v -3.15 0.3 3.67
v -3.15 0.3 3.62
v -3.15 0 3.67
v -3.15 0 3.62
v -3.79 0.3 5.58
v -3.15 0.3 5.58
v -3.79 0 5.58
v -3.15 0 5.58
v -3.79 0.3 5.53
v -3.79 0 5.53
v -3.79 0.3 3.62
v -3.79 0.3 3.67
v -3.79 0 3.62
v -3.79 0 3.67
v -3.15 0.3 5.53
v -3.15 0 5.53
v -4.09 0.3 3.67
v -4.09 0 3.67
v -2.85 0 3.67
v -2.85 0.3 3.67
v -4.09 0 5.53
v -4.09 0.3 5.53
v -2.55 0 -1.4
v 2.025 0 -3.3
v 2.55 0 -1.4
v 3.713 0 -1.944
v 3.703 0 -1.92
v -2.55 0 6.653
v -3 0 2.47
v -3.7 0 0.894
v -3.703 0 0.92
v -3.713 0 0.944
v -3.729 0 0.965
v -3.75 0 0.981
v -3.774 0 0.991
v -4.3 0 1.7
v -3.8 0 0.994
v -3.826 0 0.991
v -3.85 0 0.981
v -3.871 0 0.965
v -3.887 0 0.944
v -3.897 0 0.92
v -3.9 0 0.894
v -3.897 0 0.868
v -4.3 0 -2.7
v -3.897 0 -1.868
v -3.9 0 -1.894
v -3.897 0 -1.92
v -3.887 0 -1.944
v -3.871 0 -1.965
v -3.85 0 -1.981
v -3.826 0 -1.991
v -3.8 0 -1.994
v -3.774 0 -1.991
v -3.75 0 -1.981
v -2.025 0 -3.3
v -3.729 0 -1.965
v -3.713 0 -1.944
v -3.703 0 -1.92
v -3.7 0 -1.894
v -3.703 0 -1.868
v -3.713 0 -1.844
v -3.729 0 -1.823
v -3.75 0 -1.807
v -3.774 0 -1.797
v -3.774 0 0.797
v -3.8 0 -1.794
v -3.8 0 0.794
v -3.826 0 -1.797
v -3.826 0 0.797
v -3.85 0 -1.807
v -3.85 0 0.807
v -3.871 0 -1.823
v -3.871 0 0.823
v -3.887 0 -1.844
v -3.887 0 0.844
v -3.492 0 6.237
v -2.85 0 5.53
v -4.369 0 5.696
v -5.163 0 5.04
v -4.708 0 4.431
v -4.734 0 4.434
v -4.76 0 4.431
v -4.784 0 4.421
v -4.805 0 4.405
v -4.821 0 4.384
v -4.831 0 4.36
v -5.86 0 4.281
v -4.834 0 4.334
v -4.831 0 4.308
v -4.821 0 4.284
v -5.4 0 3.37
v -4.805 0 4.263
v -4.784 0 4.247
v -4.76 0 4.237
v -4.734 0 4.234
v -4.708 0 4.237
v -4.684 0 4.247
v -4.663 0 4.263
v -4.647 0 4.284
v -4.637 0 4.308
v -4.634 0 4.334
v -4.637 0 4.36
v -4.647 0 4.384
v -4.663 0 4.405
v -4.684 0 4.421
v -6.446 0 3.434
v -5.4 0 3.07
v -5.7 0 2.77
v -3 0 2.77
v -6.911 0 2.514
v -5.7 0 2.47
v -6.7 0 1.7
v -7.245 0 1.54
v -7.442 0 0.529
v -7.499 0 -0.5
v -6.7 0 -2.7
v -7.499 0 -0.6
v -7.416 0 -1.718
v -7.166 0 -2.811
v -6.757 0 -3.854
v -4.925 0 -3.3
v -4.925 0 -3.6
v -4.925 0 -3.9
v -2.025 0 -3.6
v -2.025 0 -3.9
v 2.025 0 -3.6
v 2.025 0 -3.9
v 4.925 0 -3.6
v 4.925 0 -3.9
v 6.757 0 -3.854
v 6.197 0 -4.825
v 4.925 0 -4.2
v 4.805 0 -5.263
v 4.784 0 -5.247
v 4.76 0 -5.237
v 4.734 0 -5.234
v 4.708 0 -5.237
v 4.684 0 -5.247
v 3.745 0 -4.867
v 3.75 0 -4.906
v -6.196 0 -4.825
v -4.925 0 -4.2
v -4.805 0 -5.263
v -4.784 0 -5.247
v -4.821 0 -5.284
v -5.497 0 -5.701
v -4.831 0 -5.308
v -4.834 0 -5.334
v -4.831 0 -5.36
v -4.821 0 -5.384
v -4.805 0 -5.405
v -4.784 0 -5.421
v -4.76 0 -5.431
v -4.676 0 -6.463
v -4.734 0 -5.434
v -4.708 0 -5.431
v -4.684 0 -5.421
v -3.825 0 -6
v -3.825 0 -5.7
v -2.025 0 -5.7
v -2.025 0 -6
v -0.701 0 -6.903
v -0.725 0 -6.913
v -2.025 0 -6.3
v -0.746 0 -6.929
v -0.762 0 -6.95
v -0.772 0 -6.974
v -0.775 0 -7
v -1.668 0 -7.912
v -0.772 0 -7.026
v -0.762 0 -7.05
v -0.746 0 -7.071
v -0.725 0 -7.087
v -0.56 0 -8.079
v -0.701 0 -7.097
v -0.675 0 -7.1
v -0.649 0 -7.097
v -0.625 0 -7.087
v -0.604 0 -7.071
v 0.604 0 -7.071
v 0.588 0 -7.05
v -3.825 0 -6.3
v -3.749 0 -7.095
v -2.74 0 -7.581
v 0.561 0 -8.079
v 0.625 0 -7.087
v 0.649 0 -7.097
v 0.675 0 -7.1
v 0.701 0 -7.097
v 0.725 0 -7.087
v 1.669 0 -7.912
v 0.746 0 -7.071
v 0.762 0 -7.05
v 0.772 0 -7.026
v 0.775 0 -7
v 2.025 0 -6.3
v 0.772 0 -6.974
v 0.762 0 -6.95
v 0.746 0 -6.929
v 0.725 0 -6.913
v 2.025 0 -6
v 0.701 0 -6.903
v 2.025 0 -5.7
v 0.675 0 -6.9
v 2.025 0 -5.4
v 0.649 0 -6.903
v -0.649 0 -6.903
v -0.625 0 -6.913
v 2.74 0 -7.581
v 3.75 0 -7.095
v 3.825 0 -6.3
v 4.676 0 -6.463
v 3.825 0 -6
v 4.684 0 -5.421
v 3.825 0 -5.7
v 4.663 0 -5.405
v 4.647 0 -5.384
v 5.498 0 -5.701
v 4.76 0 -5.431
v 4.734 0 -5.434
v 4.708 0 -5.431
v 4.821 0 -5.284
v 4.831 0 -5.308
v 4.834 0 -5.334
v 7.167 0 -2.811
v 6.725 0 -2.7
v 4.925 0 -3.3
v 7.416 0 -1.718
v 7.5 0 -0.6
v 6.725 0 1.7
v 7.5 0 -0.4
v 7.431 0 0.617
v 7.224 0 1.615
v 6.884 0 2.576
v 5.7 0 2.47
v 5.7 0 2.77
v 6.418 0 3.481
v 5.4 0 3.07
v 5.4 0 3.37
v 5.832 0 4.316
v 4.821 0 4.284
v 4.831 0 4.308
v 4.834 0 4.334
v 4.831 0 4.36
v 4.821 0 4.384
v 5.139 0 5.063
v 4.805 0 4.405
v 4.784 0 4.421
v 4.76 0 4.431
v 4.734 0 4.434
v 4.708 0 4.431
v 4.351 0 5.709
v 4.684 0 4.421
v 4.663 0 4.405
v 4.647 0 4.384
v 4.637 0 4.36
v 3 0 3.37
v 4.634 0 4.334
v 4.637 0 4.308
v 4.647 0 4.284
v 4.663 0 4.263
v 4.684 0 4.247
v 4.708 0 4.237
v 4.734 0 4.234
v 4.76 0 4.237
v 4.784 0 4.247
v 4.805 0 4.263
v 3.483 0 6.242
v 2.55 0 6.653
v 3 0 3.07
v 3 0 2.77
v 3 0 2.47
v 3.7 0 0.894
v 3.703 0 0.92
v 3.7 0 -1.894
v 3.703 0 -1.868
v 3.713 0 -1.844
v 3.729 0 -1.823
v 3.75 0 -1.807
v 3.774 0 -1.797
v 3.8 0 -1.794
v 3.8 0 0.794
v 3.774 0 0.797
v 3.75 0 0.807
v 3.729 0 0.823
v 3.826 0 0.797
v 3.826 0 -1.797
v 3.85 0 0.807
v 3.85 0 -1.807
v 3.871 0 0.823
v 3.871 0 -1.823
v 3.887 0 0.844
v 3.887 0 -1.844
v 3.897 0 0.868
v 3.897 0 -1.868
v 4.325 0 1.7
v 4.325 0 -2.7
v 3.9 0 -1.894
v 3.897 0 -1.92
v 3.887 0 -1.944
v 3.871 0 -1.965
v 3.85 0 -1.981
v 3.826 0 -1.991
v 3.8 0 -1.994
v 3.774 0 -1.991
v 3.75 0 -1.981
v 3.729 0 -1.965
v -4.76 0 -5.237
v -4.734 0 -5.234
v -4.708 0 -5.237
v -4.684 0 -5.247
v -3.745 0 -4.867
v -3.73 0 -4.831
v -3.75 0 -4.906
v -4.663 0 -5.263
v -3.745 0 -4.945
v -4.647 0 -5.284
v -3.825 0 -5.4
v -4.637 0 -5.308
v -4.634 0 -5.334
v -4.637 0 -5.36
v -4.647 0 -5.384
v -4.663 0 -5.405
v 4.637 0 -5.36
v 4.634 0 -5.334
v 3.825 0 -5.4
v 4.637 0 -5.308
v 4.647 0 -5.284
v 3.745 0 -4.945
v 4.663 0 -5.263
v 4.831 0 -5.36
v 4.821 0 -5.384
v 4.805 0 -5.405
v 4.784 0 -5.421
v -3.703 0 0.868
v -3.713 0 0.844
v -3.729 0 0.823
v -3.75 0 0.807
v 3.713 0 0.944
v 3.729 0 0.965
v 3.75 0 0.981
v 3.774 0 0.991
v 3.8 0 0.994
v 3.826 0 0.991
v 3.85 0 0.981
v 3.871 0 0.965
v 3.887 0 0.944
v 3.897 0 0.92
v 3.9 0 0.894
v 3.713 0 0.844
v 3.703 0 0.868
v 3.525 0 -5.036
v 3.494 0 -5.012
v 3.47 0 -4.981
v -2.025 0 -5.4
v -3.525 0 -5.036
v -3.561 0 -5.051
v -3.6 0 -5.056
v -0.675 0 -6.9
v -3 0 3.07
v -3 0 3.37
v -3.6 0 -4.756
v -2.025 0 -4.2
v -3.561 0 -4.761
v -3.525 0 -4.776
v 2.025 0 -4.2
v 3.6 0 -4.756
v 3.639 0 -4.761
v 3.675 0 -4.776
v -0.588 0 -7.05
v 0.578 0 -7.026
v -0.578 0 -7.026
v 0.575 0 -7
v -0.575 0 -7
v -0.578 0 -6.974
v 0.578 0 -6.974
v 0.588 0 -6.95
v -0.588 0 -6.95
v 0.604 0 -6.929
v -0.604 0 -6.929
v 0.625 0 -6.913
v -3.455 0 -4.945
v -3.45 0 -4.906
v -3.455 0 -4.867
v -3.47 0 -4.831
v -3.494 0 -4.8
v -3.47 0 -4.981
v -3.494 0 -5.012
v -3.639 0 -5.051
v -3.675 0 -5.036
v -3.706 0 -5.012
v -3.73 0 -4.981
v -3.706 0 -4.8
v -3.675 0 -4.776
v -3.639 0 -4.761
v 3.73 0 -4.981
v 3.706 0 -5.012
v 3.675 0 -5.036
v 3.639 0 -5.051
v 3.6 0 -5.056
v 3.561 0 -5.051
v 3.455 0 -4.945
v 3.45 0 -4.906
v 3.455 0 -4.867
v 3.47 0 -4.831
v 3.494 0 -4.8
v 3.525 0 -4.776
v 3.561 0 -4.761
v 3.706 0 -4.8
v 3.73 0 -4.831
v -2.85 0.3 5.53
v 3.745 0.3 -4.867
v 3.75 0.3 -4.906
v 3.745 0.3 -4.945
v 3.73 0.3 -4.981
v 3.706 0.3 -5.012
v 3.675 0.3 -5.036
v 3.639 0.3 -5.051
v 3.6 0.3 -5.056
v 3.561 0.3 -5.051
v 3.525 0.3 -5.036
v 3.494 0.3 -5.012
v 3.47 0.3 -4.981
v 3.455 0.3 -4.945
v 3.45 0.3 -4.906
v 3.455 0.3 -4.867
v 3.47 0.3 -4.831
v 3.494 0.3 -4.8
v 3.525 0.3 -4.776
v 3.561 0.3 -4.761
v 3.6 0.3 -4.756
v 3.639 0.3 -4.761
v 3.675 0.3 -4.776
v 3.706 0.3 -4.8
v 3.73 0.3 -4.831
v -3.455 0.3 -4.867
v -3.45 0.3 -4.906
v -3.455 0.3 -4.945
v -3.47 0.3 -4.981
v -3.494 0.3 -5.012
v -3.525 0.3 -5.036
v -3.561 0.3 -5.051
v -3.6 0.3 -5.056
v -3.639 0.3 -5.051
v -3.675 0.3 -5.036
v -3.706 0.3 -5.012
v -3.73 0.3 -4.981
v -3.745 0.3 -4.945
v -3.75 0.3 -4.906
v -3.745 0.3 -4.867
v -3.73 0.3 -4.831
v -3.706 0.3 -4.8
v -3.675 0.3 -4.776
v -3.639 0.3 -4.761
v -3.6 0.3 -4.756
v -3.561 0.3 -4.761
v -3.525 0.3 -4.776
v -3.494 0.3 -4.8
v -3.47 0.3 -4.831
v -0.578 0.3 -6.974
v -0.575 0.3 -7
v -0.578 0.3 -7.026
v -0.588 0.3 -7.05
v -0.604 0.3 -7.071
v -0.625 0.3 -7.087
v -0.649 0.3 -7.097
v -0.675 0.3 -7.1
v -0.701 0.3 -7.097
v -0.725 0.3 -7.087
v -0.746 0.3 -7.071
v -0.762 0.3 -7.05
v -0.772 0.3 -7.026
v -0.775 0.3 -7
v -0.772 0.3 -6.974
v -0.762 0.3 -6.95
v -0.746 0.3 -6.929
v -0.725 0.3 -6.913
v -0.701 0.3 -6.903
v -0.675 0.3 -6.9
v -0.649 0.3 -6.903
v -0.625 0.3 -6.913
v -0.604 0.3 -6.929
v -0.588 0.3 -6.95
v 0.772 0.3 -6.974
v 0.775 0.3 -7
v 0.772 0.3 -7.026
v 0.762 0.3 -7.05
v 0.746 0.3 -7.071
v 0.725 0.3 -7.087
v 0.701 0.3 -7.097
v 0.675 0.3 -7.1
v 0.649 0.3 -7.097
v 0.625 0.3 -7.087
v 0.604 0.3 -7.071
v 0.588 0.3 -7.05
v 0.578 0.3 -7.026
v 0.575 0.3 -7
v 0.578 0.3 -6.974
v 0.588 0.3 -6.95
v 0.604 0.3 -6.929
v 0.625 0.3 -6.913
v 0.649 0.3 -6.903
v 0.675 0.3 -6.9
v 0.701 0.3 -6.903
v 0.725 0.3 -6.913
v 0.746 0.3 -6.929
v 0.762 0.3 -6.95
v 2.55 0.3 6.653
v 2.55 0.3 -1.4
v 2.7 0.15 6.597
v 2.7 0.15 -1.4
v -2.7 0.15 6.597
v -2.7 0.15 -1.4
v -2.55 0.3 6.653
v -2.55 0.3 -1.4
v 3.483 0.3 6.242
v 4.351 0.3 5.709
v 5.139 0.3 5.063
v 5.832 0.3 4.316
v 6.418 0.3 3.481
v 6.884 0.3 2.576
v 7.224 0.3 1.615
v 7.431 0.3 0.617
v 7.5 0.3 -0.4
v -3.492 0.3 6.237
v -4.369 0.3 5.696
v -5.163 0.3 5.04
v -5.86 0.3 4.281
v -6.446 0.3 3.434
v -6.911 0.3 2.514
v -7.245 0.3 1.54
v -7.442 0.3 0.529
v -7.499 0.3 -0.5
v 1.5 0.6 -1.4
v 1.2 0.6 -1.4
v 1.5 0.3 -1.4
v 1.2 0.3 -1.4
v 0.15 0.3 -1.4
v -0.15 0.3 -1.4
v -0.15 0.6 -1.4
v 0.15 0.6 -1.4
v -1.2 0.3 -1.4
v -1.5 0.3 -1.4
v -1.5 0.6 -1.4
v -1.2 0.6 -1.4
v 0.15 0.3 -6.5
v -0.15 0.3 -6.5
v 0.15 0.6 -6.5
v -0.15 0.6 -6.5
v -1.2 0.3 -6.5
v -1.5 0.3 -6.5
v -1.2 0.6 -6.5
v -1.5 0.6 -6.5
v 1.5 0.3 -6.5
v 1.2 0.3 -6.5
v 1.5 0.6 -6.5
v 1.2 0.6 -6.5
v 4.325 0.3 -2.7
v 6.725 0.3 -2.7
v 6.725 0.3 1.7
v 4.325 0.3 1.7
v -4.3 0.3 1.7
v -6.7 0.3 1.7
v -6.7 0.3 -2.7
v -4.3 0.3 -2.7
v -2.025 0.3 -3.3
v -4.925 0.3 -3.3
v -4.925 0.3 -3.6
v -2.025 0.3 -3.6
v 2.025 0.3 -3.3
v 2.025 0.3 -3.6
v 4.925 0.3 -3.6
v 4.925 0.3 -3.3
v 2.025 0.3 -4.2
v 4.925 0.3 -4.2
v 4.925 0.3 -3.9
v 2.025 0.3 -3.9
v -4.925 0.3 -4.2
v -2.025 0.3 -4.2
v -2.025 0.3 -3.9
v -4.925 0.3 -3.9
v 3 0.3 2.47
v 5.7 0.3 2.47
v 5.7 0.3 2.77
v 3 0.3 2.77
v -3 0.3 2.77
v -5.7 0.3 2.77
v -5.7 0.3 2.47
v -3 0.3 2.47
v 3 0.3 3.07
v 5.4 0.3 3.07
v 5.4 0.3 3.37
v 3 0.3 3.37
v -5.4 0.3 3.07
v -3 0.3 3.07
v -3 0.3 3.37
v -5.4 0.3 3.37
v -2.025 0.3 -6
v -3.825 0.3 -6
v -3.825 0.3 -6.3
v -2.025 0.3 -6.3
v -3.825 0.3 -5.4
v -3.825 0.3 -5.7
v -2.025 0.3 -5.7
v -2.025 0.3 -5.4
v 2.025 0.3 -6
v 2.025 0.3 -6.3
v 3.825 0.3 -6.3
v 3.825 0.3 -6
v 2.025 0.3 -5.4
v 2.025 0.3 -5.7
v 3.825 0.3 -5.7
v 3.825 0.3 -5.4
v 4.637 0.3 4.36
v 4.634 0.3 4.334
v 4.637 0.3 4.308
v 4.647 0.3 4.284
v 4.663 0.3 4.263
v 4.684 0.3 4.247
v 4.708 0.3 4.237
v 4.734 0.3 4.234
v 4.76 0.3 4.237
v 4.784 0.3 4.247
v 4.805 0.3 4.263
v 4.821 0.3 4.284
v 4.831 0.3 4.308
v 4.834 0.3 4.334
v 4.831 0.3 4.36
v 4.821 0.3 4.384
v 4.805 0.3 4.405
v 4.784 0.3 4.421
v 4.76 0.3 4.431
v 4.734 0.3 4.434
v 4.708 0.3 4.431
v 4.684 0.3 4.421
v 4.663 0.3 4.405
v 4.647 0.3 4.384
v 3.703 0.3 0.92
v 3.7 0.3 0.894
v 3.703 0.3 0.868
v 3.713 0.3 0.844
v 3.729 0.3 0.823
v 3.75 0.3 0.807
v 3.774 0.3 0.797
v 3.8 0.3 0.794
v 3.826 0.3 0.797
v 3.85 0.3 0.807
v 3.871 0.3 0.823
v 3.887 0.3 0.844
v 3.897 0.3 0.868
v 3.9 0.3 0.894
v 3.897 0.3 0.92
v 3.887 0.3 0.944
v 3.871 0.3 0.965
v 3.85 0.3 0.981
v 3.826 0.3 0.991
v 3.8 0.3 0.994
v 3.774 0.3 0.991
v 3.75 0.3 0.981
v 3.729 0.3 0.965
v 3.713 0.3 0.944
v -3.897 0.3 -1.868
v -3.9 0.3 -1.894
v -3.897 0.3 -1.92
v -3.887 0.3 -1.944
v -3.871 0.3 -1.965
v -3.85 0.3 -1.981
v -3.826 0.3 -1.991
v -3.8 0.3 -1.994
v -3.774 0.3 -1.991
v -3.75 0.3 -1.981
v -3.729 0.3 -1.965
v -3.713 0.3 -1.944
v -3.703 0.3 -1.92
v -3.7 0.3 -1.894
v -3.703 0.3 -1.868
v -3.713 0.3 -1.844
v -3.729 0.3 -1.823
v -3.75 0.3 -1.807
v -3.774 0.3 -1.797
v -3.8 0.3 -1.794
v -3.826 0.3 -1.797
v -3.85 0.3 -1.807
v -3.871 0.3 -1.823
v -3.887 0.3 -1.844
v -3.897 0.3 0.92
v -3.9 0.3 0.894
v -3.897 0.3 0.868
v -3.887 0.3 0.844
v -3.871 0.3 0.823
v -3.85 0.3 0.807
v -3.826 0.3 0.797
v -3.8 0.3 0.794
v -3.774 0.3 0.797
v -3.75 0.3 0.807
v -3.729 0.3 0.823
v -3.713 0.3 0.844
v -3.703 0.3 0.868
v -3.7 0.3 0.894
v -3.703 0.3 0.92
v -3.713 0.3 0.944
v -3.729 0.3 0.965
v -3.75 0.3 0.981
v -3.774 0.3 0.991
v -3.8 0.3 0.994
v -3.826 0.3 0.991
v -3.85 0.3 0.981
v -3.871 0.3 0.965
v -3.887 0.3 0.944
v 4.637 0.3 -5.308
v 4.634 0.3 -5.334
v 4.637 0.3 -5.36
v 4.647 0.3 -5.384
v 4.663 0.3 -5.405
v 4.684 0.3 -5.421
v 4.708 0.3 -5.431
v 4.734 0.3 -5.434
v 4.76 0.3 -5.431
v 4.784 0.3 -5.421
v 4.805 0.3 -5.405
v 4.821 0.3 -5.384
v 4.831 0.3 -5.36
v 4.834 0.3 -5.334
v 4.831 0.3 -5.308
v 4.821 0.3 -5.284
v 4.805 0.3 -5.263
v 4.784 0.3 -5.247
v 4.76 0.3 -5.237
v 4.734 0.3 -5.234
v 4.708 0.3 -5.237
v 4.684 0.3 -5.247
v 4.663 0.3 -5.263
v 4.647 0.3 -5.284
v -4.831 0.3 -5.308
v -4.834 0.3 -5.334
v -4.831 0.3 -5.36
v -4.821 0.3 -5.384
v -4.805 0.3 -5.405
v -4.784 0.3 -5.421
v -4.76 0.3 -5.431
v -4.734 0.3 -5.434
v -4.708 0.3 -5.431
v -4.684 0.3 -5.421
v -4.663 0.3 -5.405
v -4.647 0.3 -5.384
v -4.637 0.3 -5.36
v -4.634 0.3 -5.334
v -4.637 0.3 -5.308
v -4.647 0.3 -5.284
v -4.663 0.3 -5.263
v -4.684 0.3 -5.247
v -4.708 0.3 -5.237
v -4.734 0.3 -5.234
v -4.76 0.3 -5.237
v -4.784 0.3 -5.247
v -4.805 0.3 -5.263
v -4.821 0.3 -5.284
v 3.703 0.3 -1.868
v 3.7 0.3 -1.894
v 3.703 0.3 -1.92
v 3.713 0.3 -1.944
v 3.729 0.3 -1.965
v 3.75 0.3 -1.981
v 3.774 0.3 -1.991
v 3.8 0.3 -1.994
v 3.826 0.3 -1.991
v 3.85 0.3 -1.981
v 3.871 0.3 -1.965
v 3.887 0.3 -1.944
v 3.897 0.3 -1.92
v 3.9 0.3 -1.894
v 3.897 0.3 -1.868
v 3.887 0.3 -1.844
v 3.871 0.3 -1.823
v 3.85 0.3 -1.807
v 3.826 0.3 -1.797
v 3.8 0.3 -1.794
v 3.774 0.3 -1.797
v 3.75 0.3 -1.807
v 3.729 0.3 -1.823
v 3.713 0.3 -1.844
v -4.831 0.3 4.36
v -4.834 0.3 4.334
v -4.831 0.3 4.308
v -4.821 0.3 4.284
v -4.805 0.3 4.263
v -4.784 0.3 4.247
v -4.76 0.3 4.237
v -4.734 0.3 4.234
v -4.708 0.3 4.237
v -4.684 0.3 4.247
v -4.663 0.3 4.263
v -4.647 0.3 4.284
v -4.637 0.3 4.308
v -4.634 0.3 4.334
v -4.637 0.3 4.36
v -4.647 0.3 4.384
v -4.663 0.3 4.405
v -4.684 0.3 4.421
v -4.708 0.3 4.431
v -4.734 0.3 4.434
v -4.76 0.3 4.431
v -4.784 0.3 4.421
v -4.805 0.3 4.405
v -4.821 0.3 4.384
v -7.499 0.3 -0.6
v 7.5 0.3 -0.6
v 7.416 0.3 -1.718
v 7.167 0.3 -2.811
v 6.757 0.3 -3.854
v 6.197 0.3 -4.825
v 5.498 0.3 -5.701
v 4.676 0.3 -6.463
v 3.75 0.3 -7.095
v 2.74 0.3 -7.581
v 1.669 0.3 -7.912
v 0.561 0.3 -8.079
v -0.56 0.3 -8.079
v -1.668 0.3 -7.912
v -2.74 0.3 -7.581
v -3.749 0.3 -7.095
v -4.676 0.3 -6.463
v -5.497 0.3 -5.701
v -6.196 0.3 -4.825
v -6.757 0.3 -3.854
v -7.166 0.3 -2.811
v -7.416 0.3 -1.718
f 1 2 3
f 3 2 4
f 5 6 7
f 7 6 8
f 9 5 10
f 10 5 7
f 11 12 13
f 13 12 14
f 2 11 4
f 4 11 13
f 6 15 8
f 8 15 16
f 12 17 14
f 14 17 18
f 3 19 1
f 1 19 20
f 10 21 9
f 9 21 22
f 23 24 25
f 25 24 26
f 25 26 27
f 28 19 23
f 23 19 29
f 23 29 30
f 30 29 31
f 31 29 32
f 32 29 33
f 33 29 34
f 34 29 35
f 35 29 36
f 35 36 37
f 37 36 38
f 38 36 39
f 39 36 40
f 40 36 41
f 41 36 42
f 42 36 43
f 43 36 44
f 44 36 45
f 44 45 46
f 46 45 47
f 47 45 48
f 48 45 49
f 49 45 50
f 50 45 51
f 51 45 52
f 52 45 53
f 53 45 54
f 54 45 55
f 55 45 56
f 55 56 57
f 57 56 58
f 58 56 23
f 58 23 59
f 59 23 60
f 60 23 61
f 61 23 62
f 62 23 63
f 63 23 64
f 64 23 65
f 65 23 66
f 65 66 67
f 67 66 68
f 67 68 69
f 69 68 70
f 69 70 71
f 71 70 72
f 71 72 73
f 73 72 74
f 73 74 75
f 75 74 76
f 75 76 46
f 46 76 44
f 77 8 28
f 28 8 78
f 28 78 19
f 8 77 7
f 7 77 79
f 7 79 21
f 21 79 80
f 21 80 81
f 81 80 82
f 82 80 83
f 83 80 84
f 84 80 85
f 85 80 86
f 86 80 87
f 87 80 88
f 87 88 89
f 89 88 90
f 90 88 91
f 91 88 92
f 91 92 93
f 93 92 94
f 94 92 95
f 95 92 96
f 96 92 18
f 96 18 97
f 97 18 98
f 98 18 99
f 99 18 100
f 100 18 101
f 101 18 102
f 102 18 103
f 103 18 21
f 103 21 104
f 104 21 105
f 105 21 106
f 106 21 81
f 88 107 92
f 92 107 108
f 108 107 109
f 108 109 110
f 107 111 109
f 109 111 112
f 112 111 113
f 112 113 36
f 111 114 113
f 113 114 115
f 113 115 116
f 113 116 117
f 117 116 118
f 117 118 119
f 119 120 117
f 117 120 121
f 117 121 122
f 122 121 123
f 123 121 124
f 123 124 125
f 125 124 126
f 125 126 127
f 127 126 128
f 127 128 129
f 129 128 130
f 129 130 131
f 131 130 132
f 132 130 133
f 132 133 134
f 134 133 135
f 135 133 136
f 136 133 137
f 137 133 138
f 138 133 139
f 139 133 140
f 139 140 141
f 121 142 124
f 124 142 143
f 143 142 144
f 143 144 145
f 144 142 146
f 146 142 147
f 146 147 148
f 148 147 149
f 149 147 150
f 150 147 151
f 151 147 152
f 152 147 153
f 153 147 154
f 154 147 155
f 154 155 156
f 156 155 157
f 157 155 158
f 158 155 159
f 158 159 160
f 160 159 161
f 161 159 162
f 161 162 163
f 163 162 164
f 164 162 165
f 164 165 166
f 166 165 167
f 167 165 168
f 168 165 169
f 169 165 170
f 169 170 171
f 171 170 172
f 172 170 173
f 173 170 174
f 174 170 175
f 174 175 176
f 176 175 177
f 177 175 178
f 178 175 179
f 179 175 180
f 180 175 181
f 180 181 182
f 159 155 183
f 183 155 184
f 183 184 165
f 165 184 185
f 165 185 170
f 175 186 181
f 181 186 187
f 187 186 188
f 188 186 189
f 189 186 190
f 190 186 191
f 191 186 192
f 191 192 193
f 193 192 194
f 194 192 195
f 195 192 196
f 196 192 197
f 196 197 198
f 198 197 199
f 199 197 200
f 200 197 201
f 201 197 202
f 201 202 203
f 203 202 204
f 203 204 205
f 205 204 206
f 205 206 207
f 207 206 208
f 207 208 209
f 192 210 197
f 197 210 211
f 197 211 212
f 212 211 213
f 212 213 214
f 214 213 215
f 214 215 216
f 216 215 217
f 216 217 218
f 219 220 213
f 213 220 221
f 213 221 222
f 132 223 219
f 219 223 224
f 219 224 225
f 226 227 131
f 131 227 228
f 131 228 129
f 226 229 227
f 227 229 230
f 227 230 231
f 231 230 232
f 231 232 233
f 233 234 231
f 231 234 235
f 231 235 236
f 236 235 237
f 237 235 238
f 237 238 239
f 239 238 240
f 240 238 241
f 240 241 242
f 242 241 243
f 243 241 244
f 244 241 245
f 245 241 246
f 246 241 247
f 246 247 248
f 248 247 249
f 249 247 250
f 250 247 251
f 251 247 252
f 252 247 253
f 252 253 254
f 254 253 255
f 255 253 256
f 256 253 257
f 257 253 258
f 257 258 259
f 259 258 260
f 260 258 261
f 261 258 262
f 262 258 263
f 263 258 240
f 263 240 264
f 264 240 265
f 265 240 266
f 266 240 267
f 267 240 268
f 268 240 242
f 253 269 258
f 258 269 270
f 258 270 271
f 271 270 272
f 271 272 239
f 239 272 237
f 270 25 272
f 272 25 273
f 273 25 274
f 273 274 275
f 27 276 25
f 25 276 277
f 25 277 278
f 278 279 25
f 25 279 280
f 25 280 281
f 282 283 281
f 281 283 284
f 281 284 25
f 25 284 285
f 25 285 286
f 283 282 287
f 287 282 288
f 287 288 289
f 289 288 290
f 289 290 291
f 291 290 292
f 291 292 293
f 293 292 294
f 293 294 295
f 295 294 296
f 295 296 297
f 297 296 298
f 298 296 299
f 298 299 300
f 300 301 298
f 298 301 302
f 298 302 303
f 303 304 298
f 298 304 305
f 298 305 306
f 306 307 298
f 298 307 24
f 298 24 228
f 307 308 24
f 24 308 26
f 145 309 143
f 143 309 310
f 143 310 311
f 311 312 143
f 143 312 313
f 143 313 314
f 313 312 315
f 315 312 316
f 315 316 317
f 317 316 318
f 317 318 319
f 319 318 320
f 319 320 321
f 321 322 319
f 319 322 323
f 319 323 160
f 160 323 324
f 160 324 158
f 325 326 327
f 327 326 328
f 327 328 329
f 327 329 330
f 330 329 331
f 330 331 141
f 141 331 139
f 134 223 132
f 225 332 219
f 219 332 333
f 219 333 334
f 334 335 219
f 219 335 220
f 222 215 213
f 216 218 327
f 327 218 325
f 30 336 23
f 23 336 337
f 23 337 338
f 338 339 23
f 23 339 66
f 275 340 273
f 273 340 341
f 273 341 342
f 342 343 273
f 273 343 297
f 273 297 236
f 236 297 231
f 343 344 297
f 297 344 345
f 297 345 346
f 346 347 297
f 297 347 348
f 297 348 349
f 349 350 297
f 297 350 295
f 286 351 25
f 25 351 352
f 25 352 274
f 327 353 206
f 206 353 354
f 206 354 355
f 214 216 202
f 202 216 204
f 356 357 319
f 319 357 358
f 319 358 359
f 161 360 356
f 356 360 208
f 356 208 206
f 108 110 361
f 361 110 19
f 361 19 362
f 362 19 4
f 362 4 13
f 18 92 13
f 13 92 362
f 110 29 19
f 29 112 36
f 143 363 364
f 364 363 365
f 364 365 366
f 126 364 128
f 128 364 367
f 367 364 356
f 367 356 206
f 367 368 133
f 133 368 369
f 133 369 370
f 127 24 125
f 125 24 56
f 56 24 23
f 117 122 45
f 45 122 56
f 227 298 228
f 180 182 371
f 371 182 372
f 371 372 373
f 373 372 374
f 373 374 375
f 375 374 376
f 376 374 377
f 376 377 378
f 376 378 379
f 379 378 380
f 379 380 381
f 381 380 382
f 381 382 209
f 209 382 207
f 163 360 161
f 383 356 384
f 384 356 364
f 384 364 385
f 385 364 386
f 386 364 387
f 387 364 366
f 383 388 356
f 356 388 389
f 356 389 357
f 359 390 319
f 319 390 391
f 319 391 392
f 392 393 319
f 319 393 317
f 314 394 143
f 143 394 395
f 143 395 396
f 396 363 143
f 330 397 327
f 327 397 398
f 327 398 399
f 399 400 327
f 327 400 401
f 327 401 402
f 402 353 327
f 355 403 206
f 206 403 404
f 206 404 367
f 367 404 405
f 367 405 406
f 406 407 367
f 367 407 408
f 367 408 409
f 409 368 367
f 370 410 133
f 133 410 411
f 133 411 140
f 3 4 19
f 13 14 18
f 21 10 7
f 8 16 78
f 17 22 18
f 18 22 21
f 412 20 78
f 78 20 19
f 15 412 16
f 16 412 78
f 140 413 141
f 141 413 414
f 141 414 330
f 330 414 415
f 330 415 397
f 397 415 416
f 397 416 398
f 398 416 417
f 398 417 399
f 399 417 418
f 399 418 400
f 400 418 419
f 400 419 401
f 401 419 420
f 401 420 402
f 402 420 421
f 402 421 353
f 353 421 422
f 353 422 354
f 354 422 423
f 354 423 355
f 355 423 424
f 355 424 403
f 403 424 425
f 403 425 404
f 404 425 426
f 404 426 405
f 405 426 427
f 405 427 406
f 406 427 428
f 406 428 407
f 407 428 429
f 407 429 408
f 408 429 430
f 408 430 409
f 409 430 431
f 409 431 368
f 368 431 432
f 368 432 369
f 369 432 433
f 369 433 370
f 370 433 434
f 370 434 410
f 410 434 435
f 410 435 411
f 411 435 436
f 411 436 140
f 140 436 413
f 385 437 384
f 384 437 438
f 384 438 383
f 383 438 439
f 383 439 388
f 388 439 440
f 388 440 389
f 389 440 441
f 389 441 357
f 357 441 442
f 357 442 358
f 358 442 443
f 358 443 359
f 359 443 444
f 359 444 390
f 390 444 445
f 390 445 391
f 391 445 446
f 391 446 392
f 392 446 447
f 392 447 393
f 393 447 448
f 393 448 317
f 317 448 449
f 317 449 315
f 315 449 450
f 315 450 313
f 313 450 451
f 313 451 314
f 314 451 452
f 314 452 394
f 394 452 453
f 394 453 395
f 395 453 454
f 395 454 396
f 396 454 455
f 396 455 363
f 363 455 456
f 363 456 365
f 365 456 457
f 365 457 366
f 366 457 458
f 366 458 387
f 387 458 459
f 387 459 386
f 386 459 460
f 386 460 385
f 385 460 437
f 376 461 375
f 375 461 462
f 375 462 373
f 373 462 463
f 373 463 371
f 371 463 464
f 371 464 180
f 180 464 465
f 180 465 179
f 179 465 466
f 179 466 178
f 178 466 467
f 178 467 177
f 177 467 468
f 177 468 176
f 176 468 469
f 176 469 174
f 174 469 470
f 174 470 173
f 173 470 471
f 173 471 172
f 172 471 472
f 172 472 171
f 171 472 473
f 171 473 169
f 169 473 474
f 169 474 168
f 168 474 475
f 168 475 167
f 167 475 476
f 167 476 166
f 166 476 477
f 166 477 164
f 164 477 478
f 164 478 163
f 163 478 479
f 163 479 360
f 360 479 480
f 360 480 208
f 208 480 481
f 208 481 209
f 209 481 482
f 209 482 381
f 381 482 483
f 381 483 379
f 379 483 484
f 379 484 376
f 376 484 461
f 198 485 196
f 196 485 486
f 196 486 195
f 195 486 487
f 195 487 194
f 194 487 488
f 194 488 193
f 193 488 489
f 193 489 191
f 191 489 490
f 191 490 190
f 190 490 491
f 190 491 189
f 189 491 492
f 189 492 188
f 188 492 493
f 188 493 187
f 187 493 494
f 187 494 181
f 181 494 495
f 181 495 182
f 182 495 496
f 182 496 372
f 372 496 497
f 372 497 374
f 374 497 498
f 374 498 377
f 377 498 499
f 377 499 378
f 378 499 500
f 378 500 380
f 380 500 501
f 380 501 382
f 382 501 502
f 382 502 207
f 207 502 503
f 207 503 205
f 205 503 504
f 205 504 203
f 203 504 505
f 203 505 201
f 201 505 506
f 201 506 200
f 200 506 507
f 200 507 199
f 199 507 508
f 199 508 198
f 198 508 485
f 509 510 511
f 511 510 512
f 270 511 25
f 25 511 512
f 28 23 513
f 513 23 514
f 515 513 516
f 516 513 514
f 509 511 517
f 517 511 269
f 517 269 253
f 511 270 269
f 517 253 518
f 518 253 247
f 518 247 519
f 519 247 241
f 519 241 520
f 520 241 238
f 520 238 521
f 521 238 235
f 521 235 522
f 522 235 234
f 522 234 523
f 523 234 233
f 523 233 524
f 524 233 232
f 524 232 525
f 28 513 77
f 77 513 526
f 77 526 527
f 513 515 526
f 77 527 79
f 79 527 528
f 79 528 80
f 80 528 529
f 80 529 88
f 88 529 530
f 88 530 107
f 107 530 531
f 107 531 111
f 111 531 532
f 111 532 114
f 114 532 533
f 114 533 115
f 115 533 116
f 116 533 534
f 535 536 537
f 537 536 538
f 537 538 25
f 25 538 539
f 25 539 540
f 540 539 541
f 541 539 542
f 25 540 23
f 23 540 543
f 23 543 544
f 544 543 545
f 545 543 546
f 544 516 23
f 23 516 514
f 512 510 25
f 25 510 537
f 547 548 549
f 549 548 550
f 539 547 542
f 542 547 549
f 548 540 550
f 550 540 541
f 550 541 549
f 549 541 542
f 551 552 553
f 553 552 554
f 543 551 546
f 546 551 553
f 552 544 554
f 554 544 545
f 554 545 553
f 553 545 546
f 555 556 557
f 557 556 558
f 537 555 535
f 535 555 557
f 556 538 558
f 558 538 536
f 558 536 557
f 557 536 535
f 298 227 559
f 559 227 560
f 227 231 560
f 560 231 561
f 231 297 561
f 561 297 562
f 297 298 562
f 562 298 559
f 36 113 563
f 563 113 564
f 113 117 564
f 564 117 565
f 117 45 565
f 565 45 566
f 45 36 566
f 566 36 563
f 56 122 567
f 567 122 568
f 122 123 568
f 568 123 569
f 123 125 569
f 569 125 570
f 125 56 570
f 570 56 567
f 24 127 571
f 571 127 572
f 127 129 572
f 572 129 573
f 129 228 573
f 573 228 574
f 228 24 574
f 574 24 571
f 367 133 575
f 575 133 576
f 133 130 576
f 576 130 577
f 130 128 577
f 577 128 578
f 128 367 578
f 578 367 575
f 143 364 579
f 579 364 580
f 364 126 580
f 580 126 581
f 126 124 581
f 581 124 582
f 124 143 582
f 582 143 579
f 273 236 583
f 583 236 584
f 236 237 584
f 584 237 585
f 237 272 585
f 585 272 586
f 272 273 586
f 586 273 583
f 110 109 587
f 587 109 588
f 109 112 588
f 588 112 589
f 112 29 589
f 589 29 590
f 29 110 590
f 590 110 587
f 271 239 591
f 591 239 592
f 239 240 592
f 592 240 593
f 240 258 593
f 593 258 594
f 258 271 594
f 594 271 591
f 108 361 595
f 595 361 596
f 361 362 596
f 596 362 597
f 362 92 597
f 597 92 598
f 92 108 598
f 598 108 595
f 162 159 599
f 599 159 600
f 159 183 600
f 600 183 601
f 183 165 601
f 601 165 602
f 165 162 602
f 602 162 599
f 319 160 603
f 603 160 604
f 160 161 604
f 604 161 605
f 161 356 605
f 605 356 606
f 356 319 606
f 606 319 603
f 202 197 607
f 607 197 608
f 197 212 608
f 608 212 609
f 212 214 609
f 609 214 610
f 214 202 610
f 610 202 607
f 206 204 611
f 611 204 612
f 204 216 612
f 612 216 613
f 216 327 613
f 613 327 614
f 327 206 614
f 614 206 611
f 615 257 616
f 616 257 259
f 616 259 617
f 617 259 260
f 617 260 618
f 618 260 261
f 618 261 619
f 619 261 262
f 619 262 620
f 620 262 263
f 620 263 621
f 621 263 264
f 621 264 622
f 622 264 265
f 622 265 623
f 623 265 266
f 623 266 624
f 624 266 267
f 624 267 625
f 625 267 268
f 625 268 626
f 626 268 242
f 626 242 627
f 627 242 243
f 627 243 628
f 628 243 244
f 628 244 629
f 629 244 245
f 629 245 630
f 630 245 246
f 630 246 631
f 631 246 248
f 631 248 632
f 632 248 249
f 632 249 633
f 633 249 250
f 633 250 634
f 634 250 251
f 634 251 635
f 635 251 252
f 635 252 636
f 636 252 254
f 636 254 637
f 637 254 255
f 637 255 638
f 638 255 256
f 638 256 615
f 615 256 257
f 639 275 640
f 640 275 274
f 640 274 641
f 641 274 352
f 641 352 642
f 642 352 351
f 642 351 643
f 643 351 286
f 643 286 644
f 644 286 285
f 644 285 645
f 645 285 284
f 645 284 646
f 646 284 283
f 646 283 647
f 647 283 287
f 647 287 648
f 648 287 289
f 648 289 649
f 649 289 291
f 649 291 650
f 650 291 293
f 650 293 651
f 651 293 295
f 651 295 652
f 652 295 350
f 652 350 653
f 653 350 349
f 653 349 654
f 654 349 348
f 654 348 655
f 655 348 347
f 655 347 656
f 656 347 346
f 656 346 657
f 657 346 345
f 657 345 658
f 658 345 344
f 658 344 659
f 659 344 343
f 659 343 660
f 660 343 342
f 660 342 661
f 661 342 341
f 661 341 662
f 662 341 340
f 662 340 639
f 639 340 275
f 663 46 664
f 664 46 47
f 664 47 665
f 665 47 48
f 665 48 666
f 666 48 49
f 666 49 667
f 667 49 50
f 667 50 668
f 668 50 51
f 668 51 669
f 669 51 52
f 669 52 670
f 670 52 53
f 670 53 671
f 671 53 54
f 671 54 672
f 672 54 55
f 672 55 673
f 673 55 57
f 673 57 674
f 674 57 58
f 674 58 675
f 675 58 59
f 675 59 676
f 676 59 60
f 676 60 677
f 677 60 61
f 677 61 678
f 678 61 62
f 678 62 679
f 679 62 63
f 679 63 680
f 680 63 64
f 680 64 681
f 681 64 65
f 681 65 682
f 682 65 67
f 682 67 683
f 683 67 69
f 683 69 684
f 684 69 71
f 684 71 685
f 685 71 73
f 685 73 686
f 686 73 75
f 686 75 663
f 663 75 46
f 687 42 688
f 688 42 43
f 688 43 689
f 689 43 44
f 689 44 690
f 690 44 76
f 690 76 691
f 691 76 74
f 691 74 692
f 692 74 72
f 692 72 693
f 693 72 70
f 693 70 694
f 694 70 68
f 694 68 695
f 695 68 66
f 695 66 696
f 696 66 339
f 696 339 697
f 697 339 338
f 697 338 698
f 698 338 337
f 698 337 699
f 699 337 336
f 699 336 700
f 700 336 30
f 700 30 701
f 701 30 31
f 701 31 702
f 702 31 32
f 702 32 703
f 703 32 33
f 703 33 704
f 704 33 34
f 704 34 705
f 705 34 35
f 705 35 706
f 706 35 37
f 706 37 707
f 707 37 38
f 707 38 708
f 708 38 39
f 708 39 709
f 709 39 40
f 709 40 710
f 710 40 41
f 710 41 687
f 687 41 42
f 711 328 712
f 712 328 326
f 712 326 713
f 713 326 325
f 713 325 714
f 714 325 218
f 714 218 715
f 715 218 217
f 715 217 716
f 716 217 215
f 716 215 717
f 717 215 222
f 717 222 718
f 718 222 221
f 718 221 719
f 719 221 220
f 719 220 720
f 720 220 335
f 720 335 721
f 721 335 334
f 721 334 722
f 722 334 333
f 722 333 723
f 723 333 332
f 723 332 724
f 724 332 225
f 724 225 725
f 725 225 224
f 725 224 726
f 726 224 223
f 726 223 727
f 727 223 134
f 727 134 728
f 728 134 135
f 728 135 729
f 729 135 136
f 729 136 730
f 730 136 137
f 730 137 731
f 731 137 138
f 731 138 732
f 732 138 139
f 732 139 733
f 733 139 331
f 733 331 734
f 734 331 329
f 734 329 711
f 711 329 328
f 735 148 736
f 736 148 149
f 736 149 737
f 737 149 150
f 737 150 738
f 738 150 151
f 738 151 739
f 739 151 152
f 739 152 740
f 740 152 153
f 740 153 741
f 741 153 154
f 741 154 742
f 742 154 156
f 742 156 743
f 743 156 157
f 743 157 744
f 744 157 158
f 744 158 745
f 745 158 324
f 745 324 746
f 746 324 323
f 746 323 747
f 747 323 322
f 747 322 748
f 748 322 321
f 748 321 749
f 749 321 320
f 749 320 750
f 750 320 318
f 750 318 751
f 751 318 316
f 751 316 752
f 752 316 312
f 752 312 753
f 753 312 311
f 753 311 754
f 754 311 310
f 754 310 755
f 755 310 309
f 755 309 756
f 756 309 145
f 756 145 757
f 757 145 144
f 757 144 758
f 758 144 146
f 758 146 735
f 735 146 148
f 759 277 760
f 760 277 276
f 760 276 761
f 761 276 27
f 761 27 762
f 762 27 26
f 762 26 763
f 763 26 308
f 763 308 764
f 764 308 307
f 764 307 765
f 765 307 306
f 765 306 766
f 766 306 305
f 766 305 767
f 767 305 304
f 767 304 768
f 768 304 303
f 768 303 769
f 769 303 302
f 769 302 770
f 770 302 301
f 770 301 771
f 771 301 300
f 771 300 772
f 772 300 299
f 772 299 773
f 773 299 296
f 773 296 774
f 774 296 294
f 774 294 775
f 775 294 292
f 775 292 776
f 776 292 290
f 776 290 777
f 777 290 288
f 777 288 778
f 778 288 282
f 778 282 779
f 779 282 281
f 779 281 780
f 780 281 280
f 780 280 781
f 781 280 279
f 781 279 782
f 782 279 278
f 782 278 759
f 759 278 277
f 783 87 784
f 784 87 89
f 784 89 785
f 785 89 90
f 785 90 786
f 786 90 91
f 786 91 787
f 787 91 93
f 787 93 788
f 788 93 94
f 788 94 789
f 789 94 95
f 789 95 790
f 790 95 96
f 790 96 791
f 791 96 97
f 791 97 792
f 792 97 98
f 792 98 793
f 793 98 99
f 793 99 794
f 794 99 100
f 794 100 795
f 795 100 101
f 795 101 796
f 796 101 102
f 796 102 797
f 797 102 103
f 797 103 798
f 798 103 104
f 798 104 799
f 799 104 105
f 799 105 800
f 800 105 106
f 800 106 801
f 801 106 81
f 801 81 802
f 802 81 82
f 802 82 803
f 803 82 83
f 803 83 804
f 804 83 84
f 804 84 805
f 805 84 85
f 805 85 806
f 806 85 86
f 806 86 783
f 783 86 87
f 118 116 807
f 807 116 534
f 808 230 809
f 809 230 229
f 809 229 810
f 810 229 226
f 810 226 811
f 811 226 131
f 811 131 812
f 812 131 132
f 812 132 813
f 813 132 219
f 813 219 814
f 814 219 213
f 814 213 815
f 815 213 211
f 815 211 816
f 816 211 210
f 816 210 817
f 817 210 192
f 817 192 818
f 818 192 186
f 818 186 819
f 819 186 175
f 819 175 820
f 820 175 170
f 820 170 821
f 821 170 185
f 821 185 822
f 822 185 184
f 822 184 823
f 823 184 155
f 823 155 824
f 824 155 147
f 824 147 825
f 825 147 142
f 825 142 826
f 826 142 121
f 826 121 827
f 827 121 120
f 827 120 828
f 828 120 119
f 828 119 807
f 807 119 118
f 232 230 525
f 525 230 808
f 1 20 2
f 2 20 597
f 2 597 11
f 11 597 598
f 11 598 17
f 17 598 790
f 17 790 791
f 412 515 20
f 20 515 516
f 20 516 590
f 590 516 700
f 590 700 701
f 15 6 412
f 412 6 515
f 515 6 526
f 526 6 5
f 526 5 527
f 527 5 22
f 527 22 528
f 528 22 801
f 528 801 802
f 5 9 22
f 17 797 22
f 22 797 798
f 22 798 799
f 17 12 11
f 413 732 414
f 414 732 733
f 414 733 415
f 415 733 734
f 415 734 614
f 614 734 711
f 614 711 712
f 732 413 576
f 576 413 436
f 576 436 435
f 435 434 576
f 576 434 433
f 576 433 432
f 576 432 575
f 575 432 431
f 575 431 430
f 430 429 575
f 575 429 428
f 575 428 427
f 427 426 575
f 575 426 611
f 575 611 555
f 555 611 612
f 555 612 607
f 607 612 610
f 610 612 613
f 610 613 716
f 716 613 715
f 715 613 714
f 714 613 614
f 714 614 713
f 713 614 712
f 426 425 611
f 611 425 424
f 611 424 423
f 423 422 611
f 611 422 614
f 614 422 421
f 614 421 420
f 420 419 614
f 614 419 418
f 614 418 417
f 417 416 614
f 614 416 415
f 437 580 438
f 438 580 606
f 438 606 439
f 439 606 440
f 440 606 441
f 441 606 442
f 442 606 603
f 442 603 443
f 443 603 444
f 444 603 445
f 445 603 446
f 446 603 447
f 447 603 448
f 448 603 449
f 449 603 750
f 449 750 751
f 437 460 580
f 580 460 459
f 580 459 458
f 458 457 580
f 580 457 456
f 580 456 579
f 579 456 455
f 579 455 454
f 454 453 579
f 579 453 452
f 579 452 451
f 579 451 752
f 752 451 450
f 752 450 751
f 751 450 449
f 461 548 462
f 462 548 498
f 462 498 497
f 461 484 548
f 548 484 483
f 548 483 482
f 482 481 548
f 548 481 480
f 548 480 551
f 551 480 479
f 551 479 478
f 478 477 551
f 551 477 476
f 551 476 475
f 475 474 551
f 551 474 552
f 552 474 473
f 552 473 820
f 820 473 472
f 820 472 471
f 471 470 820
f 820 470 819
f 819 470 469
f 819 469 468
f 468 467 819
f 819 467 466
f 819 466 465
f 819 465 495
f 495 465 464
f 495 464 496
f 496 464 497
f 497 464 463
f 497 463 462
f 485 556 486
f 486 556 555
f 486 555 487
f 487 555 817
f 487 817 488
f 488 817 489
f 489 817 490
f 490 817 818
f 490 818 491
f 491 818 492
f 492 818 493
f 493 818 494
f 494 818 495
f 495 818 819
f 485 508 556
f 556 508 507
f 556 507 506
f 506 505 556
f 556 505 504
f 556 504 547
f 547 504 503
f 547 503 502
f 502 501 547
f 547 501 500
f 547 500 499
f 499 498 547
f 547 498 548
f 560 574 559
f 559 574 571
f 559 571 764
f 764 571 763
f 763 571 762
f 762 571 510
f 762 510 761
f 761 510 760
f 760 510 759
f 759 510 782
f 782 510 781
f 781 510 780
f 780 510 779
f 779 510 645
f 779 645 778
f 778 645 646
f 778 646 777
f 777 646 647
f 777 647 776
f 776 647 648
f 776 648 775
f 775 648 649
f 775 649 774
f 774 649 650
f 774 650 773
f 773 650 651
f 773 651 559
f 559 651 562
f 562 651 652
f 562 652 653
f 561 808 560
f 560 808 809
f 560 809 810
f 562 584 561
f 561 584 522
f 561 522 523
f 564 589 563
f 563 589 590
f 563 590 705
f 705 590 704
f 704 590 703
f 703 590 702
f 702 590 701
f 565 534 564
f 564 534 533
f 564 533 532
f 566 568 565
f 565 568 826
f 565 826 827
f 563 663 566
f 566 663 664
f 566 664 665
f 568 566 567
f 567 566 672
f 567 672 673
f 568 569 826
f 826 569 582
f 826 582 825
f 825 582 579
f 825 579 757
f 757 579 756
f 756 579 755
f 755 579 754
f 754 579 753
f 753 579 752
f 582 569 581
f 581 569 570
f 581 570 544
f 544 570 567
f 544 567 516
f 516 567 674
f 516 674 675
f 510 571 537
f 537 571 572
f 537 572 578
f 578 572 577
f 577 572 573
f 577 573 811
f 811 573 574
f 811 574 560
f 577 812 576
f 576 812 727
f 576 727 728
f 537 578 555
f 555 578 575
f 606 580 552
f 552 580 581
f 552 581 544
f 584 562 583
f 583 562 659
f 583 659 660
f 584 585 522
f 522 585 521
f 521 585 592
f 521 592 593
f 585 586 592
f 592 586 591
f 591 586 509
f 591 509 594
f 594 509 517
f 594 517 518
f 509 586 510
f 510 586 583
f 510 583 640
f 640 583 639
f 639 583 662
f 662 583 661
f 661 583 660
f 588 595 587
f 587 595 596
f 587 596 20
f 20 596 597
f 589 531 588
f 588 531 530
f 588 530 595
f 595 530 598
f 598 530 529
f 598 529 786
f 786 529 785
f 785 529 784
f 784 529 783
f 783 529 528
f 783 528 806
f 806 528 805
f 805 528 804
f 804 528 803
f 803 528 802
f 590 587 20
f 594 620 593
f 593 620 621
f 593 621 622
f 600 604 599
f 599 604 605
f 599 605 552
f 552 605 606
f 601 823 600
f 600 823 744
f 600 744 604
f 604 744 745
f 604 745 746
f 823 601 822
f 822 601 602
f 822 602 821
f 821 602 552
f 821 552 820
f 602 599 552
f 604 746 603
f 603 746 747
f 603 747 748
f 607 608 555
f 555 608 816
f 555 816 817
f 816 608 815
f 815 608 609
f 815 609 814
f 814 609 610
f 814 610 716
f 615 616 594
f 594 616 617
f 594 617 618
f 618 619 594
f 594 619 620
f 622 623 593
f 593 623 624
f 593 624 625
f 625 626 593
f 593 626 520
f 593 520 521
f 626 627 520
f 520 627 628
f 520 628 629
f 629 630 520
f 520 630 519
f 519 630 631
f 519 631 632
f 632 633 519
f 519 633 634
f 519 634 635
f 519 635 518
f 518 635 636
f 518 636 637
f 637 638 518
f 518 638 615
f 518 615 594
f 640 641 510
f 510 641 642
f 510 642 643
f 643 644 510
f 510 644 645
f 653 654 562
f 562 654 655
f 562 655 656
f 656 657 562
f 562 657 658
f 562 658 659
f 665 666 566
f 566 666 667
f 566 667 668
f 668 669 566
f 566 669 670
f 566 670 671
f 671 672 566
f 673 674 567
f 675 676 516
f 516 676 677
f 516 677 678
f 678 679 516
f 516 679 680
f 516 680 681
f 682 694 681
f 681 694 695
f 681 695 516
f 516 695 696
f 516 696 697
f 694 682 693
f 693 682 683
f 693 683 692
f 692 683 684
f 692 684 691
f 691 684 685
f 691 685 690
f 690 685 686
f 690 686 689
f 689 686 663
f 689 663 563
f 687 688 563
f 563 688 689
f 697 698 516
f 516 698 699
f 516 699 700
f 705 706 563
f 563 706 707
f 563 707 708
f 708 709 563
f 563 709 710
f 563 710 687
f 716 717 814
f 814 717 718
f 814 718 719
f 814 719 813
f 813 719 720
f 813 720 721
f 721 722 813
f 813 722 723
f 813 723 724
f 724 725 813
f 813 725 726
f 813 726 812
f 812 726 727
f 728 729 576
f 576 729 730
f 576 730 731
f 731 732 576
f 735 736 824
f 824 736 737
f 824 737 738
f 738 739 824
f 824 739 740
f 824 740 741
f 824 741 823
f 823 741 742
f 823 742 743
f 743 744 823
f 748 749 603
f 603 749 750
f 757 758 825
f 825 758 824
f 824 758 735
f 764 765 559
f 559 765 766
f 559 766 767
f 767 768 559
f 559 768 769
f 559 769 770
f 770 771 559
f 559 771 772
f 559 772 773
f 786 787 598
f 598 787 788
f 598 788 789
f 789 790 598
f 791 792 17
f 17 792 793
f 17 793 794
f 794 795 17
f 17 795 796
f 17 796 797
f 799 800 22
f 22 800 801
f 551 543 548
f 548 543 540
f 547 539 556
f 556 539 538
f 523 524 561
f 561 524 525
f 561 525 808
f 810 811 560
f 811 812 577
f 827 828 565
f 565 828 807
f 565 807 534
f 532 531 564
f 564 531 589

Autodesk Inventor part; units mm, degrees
ref_plane "YZ Plane" through (0, 0, 0) normal (1, 0, 0) x (0, 1, 0)
ref_plane "XZ Plane" through (0, 0, 0) normal (0, 1, 0) x (-1, 0, 0)
ref_plane "XY Plane" through (0, 0, 0) normal (0, 0, 1) x (1, 0, 0)
sketch "Boceto1" plane through (0, 0, 0) normal (0, 1, 0) x (-1, 0, 0)
  line L0 (4.925, -3.9) -> (4.925, -4.2)
  line L1 (4.925, -4.2) -> (2.025, -4.2)
  line L2 (2.025, -4.2) -> (2.025, -3.9)
  line L3 (2.025, -3.9) -> (4.925, -3.9)
  line L4 (-4.925, -3.3) -> (-2.025, -3.3)
  line L5 (-2.025, -3.3) -> (-2.025, -3.6)
  line L6 (-2.025, -3.6) -> (-4.925, -3.6)
  line L7 (-4.925, -3.6) -> (-4.925, -3.3)
  line L8 (3, 2.4695) -> (3, 2.7695)
  line L9 (3, 2.7695) -> (5.7, 2.7695)
  line L10 (5.7, 2.7695) -> (5.7, 2.4695)
  line L11 (5.7, 2.4695) -> (3, 2.4695)
  line L12 (3, 3.0695) -> (3, 3.3695)
  line L13 (3, 3.3695) -> (5.4, 3.3695)
  line L14 (5.4, 3.3695) -> (5.4, 3.0695)
  line L15 (5.4, 3.0695) -> (3, 3.0695)
  line L16 (2.025, -5.4) -> (3.825, -5.4)
  line L17 (3.825, -5.4) -> (3.825, -5.7)
  line L18 (3.825, -5.7) -> (2.025, -5.7)
  line L19 (2.025, -5.7) -> (2.025, -5.4)
  line L20 (-3.825, -5.7) -> (-3.825, -5.4)
  line L21 (-3.825, -5.4) -> (-2.025, -5.4)
  line L22 (-2.025, -5.4) -> (-2.025, -5.7)
  line L23 (-2.025, -5.7) -> (-3.825, -5.7)
  line L24 (-3.825, -6.3) -> (-3.825, -6)
  line L25 (-3.825, -6) -> (-2.025, -6)
  line L26 (-2.025, -6) -> (-2.025, -6.3)
  line L27 (-2.025, -6.3) -> (-3.825, -6.3)
  line L28 (2.025, -6.3) -> (2.025, -6)
  line L29 (2.025, -6) -> (3.825, -6)
  line L30 (3.825, -6) -> (3.825, -6.3)
  line L31 (3.825, -6.3) -> (2.025, -6.3)
  line L32 (-3, 3.3695) -> (-3, 3.0695)
  line L33 (-3, 3.0695) -> (-5.4, 3.0695)
  line L34 (-5.4, 3.0695) -> (-5.4, 3.3695)
  line L35 (-5.4, 3.3695) -> (-3, 3.3695)
  line L36 (-3, 2.7695) -> (-3, 2.4695)
  line L37 (-3, 2.4695) -> (-5.7, 2.4695)
  line L38 (-5.7, 2.4695) -> (-5.7, 2.7695)
  line L39 (-5.7, 2.7695) -> (-3, 2.7695)
  line L40 (-4.925, -4.2) -> (-4.925, -3.9)
  line L41 (-4.925, -3.9) -> (-2.025, -3.9)
  line L42 (-2.025, -3.9) -> (-2.025, -4.2)
  line L43 (-2.025, -4.2) -> (-4.925, -4.2)
  line L44 (4.925, -3.6) -> (2.025, -3.6)
  line L45 (2.025, -3.6) -> (2.025, -3.3)
  line L46 (2.025, -3.3) -> (4.925, -3.3)
  line L47 (4.925, -3.3) -> (4.925, -3.6)
  line L48 (0.15, -6.5) -> (-0.15, -6.5)
  line L49 (-1.2, -6.5) -> (-1.5, -6.5)
  line L50 (1.5, -6.5) -> (1.2, -6.5)
  line L51 (-6.725, -2.7) -> (-6.725, 1.7)
  line L52 (-6.725, 1.7) -> (-4.325, 1.7)
  line L53 (-4.325, 1.7) -> (-4.325, -2.7)
  line L54 (-4.325, -2.7) -> (-6.725, -2.7)
  line L55 (4.3, -2.7) -> (4.3, 1.7)
  line L56 (4.3, 1.7) -> (6.7, 1.7)
  line L57 (6.7, 1.7) -> (6.7, -2.7)
  line L58 (6.7, -2.7) -> (4.3, -2.7)
  circle A0 centre (-4.734, 4.334) radius 0.1
  circle A1 centre (4.734, 4.334) radius 0.1
  circle A2 centre (-4.734, -5.334) radius 0.1
  circle A3 centre (4.734, -5.334) radius 0.1
  circle A4 centre (-3.8, 0.894) radius 0.1
  circle A5 centre (-3.8, -1.894) radius 0.1
  circle A6 centre (3.8, 0.894) radius 0.1
  circle A7 centre (3.8, -1.894) radius 0.1
  line L59 (2.55, -1.4) -> (-2.55, -1.4)
  line L60 (1.5, -1.4) -> (1.5, -6.5)
  line L61 (1.2, -6.5) -> (1.2, -1.4)
  line L62 (0.15, -1.4) -> (0.15, -6.5)
  line L63 (-0.15, -6.5) -> (-0.15, -1.4)
  line L64 (-1.5, -6.5) -> (-1.5, -1.4)
  line L65 (-1.2, -1.4) -> (-1.2, -6.5)
  line L66 (2.55, -1.4) -> (2.55, 6.6532)
  line L67 (-2.55, -1.4) -> (-2.55, 6.6532)
  line L68 (-7.5, -0.5) -> (-7.5, -0.4)
  line L69 (7.5, -0.5) -> (7.5, -0.4)
  line L70 (-7.5, -0.5) -> (-7.5, -0.6)
  line L71 (7.4993, -0.5) -> (7.4993, -0.6)
  arc A8 (-7.5, -0.6) -> (7.4993, -0.6) centre (-0.0003, -0.6) ccw
  arc A9 (7.4993, -0.5) -> (2.55, 6.6532) centre (0, -0.4) ccw
  arc A10 (-2.55, 6.6532) -> (-7.5, -0.4) centre (0, -0.4) ccw
  line L72 (-4.734, -5.184) -> (-5.4457, -5.184)
  line L73 (-4.734, -5.234) -> (-4.734, -5.334)
  point P0 (2.352, 6.909)
  dimension "d43" = 0.2
  dimension "d13" = 0.1
  dimension "d14" = 0.1
  dimension "d15" = 0.1
  dimension "d39" = 0.2
  dimension "d40" = 0.2
  dimension "d41" = 0.2
  dimension "d42" = 0.2
  dimension "d44" = 0.2
  dimension "d45" = 0.2
  dimension "d46" = 0.2
extrude "Extrusión1" add sketch "Boceto1" along normal blind 0.3 contours L62 L59 L61 L50 L60 L66 A9 L69 L71 A8 L70 L68 A10 L67 L64 L49 L65 L63 L48
sketch "Boceto2" plane through (0, 0.3, 0) normal (0, 1, 0) x (1, 0, 0)
  line L0 (-1.2, 6.5) -> (-1.2, 1.4) projected
  line L1 (-1.5, 1.4) -> (-1.5, 6.5) projected
  line L2 (-0.15, 1.4) -> (-0.15, 6.5) projected
  line L3 (0.15, 6.5) -> (0.15, 1.4) projected
  line L4 (1.2, 1.4) -> (1.2, 6.5) projected
  line L5 (1.5, 6.5) -> (1.5, 1.4) projected
  line L6 (1.2, 6.5) -> (1.5, 6.5) projected
  line L7 (-0.15, 6.5) -> (0.15, 6.5) projected
  line L8 (-1.5, 6.5) -> (-1.2, 6.5) projected
  line L9 (-1.5, 6.5) -> (-1.2, 6.5)
  line L10 (-1.2, 6.5) -> (-1.2, 1.4)
  line L11 (-1.2, 1.4) -> (-1.5, 1.4)
  line L12 (-1.5, 1.4) -> (-1.5, 6.5)
  line L13 (-0.15, 6.5) -> (0.15, 6.5)
  line L14 (0.15, 6.5) -> (0.15, 1.4)
  line L15 (0.15, 1.4) -> (-0.15, 1.4)
  line L16 (-0.15, 1.4) -> (-0.15, 6.5)
  line L17 (1.2, 6.5) -> (1.5, 6.5)
  line L18 (1.5, 6.5) -> (1.5, 1.4)
  line L19 (1.5, 1.4) -> (1.2, 1.4)
  line L20 (1.2, 1.4) -> (1.2, 6.5)
  point P0 (0, 0)
extrude "Extrusión2" add sketch "Boceto2" along normal mid plane 0.6
sketch "Boceto3" plane through (-2.4, 0, -1.4) normal (0, 0, 1) x (1, 0, 0)
  line L0 (0, 0) -> (4.8, 0)
  line L1 (0, 0.3) -> (4.8, 0.3)
  line L2 (0, 0.3) -> (4.8, 0.3)
  line L3 (9.9, 0.3) -> (-5.1, 0.3)
  line L4 (4.8, 0) -> (0, 0)
  line L5 (9.9, 0) -> (-5.1, 0)
  line L6 (-0.3, 0.15) -> (-0.15, 0)
  line L7 (-0.3, 0.15) -> (-0.15, 0.3)
  line L8 (5.1, 0.15) -> (4.95, 0.3)
  line L9 (5.1, 0.15) -> (4.95, 0)
  line L10 (-0.15, 0.3) -> (4.95, 0.3)
  line L11 (4.95, 0) -> (-0.15, 0)
  point P0 (2.4, 0)
  point P1 (0.048, 0)
  point P2 (4.752, 0)
extrude "Extrusión3" cut sketch "Boceto3" along normal blind 10
sketch "Boceto4" plane through (0, 0.3, 0) normal (0, 1, 0) x (1, 0, 0)
  circle A0 centre (-0.675, 7) radius 0.15
  line L0 (4.325, -1.7) -> (4.325, 2.7)
  circle A1 centre (0.675, 7) radius 0.15
  line L1 (-6.7, -1.7) -> (-6.7, 2.7)
  line L2 (-6.7, 2.7) -> (-4.3, 2.7)
  line L3 (-4.3, 2.7) -> (-4.3, -1.7)
  line L4 (-4.3, -1.7) -> (-6.7, -1.7)
  line L5 (4.325, 2.7) -> (6.725, 2.7)
  line L6 (6.725, 2.7) -> (6.725, -1.7)
  line L7 (-3.825, 5.8) -> (-2.025, 5.8)
  line L8 (-2.025, 5.5) -> (-3.825, 5.5)
  line L9 (2.025, 5.8) -> (3.825, 5.8)
  line L10 (3.825, 5.5) -> (2.025, 5.5)
  line L11 (4.325, 2.7) -> (6.725, 2.7) projected
  line L12 (2.025, 6.3) -> (3.825, 6.3) projected
  circle A2 centre (-0.675, 7) radius 0.1
  circle A3 centre (0.675, 7) radius 0.1
  point P0 (0, 0)
  dimension "d47" = 0.3
  dimension "d48" = 0.2
  dimension "d49" = 0.2
extrude "Extrusión4" cut sketch "Boceto4" against normal blind 10 contours A2 | A3
sketch "Boceto8" plane through (0, 0.3, 0) normal (0, 1, 0) x (1, 0, 0)
  circle A0 centre (-3.8, -0.894) radius 0.1 projected
  line L0 (0, 0) -> (0, -2.4412)
  circle A1 centre (3.8, -0.894) radius 0.1
  circle A2 centre (3.6, 4.906) radius 0.15
  circle A3 centre (-3.6, 4.906) radius 0.15
  dimension "d33" = 0.3
  dimension "d34" = 0.3
extrude "Extrusión6" cut sketch "Boceto8" against normal blind 10 contours A2 | A3
sketch "Boceto9" plane through (0, 0, 0) normal (0, -1, 0) x (1, 0, 0)
  line L0 (-2.85, 3.6695) -> (-4.09, 3.6695)
  line L1 (-4.09, 5.5295) -> (-4.09, 3.6695)
  line L2 (-2.85, 3.6695) -> (-2.85, 5.5295)
  line L3 (-4.09, 5.5295) -> (-2.85, 5.5295)
  line L4 (-3, 3.3695) -> (-5.4, 3.3695) projected
  line L5 (-2.55, 6.6532) -> (-2.55, -1.4) projected
  point P0 (0, 0)
extrude "Extrusión7" cut sketch "Boceto9" against normal blind 10
sketch "Boceto11" plane through (0, 0, 0) normal (0, -1, 0) x (1, 0, 0)
  line L0 (-2.85, 5.5295) -> (-4.09, 5.5295) projected
  line L1 (-2.85, 5.5295) -> (-3.15, 5.5295)
  line L2 (-3.15, 5.5295) -> (-3.15, 5.5795)
  line L3 (-4.09, 5.5295) -> (-3.79, 5.5295)
  line L4 (-3.79, 5.5295) -> (-3.79, 5.5795)
  line L5 (-3.79, 5.5795) -> (-3.15, 5.5795)
  line L6 (-4.09, 5.5295) -> (-4.09, 3.6695)
  line L7 (-4.09, 3.6695) -> (-4.09, 5.5295) projected
  line L8 (-2.85, 3.6695) -> (-3.15, 3.6695)
  line L9 (-3.15, 3.6695) -> (-3.15, 3.6195)
  line L10 (-4.09, 3.6695) -> (-3.79, 3.6695)
  line L11 (-3.79, 3.6695) -> (-3.79, 3.6195)
  line L12 (-3.79, 3.6195) -> (-3.15, 3.6195)
  line L13 (-2.85, 5.5295) -> (-2.85, 3.6695)
  point P0 (0, 0)
  dimension "d50" = 0.3
  dimension "d51" = 0.05
  dimension "d52" = 0.3
  dimension "d53" = 0.05
extrude "Extrusión8" cut sketch "Boceto11" against normal blind 10
properties part number "LBase"
